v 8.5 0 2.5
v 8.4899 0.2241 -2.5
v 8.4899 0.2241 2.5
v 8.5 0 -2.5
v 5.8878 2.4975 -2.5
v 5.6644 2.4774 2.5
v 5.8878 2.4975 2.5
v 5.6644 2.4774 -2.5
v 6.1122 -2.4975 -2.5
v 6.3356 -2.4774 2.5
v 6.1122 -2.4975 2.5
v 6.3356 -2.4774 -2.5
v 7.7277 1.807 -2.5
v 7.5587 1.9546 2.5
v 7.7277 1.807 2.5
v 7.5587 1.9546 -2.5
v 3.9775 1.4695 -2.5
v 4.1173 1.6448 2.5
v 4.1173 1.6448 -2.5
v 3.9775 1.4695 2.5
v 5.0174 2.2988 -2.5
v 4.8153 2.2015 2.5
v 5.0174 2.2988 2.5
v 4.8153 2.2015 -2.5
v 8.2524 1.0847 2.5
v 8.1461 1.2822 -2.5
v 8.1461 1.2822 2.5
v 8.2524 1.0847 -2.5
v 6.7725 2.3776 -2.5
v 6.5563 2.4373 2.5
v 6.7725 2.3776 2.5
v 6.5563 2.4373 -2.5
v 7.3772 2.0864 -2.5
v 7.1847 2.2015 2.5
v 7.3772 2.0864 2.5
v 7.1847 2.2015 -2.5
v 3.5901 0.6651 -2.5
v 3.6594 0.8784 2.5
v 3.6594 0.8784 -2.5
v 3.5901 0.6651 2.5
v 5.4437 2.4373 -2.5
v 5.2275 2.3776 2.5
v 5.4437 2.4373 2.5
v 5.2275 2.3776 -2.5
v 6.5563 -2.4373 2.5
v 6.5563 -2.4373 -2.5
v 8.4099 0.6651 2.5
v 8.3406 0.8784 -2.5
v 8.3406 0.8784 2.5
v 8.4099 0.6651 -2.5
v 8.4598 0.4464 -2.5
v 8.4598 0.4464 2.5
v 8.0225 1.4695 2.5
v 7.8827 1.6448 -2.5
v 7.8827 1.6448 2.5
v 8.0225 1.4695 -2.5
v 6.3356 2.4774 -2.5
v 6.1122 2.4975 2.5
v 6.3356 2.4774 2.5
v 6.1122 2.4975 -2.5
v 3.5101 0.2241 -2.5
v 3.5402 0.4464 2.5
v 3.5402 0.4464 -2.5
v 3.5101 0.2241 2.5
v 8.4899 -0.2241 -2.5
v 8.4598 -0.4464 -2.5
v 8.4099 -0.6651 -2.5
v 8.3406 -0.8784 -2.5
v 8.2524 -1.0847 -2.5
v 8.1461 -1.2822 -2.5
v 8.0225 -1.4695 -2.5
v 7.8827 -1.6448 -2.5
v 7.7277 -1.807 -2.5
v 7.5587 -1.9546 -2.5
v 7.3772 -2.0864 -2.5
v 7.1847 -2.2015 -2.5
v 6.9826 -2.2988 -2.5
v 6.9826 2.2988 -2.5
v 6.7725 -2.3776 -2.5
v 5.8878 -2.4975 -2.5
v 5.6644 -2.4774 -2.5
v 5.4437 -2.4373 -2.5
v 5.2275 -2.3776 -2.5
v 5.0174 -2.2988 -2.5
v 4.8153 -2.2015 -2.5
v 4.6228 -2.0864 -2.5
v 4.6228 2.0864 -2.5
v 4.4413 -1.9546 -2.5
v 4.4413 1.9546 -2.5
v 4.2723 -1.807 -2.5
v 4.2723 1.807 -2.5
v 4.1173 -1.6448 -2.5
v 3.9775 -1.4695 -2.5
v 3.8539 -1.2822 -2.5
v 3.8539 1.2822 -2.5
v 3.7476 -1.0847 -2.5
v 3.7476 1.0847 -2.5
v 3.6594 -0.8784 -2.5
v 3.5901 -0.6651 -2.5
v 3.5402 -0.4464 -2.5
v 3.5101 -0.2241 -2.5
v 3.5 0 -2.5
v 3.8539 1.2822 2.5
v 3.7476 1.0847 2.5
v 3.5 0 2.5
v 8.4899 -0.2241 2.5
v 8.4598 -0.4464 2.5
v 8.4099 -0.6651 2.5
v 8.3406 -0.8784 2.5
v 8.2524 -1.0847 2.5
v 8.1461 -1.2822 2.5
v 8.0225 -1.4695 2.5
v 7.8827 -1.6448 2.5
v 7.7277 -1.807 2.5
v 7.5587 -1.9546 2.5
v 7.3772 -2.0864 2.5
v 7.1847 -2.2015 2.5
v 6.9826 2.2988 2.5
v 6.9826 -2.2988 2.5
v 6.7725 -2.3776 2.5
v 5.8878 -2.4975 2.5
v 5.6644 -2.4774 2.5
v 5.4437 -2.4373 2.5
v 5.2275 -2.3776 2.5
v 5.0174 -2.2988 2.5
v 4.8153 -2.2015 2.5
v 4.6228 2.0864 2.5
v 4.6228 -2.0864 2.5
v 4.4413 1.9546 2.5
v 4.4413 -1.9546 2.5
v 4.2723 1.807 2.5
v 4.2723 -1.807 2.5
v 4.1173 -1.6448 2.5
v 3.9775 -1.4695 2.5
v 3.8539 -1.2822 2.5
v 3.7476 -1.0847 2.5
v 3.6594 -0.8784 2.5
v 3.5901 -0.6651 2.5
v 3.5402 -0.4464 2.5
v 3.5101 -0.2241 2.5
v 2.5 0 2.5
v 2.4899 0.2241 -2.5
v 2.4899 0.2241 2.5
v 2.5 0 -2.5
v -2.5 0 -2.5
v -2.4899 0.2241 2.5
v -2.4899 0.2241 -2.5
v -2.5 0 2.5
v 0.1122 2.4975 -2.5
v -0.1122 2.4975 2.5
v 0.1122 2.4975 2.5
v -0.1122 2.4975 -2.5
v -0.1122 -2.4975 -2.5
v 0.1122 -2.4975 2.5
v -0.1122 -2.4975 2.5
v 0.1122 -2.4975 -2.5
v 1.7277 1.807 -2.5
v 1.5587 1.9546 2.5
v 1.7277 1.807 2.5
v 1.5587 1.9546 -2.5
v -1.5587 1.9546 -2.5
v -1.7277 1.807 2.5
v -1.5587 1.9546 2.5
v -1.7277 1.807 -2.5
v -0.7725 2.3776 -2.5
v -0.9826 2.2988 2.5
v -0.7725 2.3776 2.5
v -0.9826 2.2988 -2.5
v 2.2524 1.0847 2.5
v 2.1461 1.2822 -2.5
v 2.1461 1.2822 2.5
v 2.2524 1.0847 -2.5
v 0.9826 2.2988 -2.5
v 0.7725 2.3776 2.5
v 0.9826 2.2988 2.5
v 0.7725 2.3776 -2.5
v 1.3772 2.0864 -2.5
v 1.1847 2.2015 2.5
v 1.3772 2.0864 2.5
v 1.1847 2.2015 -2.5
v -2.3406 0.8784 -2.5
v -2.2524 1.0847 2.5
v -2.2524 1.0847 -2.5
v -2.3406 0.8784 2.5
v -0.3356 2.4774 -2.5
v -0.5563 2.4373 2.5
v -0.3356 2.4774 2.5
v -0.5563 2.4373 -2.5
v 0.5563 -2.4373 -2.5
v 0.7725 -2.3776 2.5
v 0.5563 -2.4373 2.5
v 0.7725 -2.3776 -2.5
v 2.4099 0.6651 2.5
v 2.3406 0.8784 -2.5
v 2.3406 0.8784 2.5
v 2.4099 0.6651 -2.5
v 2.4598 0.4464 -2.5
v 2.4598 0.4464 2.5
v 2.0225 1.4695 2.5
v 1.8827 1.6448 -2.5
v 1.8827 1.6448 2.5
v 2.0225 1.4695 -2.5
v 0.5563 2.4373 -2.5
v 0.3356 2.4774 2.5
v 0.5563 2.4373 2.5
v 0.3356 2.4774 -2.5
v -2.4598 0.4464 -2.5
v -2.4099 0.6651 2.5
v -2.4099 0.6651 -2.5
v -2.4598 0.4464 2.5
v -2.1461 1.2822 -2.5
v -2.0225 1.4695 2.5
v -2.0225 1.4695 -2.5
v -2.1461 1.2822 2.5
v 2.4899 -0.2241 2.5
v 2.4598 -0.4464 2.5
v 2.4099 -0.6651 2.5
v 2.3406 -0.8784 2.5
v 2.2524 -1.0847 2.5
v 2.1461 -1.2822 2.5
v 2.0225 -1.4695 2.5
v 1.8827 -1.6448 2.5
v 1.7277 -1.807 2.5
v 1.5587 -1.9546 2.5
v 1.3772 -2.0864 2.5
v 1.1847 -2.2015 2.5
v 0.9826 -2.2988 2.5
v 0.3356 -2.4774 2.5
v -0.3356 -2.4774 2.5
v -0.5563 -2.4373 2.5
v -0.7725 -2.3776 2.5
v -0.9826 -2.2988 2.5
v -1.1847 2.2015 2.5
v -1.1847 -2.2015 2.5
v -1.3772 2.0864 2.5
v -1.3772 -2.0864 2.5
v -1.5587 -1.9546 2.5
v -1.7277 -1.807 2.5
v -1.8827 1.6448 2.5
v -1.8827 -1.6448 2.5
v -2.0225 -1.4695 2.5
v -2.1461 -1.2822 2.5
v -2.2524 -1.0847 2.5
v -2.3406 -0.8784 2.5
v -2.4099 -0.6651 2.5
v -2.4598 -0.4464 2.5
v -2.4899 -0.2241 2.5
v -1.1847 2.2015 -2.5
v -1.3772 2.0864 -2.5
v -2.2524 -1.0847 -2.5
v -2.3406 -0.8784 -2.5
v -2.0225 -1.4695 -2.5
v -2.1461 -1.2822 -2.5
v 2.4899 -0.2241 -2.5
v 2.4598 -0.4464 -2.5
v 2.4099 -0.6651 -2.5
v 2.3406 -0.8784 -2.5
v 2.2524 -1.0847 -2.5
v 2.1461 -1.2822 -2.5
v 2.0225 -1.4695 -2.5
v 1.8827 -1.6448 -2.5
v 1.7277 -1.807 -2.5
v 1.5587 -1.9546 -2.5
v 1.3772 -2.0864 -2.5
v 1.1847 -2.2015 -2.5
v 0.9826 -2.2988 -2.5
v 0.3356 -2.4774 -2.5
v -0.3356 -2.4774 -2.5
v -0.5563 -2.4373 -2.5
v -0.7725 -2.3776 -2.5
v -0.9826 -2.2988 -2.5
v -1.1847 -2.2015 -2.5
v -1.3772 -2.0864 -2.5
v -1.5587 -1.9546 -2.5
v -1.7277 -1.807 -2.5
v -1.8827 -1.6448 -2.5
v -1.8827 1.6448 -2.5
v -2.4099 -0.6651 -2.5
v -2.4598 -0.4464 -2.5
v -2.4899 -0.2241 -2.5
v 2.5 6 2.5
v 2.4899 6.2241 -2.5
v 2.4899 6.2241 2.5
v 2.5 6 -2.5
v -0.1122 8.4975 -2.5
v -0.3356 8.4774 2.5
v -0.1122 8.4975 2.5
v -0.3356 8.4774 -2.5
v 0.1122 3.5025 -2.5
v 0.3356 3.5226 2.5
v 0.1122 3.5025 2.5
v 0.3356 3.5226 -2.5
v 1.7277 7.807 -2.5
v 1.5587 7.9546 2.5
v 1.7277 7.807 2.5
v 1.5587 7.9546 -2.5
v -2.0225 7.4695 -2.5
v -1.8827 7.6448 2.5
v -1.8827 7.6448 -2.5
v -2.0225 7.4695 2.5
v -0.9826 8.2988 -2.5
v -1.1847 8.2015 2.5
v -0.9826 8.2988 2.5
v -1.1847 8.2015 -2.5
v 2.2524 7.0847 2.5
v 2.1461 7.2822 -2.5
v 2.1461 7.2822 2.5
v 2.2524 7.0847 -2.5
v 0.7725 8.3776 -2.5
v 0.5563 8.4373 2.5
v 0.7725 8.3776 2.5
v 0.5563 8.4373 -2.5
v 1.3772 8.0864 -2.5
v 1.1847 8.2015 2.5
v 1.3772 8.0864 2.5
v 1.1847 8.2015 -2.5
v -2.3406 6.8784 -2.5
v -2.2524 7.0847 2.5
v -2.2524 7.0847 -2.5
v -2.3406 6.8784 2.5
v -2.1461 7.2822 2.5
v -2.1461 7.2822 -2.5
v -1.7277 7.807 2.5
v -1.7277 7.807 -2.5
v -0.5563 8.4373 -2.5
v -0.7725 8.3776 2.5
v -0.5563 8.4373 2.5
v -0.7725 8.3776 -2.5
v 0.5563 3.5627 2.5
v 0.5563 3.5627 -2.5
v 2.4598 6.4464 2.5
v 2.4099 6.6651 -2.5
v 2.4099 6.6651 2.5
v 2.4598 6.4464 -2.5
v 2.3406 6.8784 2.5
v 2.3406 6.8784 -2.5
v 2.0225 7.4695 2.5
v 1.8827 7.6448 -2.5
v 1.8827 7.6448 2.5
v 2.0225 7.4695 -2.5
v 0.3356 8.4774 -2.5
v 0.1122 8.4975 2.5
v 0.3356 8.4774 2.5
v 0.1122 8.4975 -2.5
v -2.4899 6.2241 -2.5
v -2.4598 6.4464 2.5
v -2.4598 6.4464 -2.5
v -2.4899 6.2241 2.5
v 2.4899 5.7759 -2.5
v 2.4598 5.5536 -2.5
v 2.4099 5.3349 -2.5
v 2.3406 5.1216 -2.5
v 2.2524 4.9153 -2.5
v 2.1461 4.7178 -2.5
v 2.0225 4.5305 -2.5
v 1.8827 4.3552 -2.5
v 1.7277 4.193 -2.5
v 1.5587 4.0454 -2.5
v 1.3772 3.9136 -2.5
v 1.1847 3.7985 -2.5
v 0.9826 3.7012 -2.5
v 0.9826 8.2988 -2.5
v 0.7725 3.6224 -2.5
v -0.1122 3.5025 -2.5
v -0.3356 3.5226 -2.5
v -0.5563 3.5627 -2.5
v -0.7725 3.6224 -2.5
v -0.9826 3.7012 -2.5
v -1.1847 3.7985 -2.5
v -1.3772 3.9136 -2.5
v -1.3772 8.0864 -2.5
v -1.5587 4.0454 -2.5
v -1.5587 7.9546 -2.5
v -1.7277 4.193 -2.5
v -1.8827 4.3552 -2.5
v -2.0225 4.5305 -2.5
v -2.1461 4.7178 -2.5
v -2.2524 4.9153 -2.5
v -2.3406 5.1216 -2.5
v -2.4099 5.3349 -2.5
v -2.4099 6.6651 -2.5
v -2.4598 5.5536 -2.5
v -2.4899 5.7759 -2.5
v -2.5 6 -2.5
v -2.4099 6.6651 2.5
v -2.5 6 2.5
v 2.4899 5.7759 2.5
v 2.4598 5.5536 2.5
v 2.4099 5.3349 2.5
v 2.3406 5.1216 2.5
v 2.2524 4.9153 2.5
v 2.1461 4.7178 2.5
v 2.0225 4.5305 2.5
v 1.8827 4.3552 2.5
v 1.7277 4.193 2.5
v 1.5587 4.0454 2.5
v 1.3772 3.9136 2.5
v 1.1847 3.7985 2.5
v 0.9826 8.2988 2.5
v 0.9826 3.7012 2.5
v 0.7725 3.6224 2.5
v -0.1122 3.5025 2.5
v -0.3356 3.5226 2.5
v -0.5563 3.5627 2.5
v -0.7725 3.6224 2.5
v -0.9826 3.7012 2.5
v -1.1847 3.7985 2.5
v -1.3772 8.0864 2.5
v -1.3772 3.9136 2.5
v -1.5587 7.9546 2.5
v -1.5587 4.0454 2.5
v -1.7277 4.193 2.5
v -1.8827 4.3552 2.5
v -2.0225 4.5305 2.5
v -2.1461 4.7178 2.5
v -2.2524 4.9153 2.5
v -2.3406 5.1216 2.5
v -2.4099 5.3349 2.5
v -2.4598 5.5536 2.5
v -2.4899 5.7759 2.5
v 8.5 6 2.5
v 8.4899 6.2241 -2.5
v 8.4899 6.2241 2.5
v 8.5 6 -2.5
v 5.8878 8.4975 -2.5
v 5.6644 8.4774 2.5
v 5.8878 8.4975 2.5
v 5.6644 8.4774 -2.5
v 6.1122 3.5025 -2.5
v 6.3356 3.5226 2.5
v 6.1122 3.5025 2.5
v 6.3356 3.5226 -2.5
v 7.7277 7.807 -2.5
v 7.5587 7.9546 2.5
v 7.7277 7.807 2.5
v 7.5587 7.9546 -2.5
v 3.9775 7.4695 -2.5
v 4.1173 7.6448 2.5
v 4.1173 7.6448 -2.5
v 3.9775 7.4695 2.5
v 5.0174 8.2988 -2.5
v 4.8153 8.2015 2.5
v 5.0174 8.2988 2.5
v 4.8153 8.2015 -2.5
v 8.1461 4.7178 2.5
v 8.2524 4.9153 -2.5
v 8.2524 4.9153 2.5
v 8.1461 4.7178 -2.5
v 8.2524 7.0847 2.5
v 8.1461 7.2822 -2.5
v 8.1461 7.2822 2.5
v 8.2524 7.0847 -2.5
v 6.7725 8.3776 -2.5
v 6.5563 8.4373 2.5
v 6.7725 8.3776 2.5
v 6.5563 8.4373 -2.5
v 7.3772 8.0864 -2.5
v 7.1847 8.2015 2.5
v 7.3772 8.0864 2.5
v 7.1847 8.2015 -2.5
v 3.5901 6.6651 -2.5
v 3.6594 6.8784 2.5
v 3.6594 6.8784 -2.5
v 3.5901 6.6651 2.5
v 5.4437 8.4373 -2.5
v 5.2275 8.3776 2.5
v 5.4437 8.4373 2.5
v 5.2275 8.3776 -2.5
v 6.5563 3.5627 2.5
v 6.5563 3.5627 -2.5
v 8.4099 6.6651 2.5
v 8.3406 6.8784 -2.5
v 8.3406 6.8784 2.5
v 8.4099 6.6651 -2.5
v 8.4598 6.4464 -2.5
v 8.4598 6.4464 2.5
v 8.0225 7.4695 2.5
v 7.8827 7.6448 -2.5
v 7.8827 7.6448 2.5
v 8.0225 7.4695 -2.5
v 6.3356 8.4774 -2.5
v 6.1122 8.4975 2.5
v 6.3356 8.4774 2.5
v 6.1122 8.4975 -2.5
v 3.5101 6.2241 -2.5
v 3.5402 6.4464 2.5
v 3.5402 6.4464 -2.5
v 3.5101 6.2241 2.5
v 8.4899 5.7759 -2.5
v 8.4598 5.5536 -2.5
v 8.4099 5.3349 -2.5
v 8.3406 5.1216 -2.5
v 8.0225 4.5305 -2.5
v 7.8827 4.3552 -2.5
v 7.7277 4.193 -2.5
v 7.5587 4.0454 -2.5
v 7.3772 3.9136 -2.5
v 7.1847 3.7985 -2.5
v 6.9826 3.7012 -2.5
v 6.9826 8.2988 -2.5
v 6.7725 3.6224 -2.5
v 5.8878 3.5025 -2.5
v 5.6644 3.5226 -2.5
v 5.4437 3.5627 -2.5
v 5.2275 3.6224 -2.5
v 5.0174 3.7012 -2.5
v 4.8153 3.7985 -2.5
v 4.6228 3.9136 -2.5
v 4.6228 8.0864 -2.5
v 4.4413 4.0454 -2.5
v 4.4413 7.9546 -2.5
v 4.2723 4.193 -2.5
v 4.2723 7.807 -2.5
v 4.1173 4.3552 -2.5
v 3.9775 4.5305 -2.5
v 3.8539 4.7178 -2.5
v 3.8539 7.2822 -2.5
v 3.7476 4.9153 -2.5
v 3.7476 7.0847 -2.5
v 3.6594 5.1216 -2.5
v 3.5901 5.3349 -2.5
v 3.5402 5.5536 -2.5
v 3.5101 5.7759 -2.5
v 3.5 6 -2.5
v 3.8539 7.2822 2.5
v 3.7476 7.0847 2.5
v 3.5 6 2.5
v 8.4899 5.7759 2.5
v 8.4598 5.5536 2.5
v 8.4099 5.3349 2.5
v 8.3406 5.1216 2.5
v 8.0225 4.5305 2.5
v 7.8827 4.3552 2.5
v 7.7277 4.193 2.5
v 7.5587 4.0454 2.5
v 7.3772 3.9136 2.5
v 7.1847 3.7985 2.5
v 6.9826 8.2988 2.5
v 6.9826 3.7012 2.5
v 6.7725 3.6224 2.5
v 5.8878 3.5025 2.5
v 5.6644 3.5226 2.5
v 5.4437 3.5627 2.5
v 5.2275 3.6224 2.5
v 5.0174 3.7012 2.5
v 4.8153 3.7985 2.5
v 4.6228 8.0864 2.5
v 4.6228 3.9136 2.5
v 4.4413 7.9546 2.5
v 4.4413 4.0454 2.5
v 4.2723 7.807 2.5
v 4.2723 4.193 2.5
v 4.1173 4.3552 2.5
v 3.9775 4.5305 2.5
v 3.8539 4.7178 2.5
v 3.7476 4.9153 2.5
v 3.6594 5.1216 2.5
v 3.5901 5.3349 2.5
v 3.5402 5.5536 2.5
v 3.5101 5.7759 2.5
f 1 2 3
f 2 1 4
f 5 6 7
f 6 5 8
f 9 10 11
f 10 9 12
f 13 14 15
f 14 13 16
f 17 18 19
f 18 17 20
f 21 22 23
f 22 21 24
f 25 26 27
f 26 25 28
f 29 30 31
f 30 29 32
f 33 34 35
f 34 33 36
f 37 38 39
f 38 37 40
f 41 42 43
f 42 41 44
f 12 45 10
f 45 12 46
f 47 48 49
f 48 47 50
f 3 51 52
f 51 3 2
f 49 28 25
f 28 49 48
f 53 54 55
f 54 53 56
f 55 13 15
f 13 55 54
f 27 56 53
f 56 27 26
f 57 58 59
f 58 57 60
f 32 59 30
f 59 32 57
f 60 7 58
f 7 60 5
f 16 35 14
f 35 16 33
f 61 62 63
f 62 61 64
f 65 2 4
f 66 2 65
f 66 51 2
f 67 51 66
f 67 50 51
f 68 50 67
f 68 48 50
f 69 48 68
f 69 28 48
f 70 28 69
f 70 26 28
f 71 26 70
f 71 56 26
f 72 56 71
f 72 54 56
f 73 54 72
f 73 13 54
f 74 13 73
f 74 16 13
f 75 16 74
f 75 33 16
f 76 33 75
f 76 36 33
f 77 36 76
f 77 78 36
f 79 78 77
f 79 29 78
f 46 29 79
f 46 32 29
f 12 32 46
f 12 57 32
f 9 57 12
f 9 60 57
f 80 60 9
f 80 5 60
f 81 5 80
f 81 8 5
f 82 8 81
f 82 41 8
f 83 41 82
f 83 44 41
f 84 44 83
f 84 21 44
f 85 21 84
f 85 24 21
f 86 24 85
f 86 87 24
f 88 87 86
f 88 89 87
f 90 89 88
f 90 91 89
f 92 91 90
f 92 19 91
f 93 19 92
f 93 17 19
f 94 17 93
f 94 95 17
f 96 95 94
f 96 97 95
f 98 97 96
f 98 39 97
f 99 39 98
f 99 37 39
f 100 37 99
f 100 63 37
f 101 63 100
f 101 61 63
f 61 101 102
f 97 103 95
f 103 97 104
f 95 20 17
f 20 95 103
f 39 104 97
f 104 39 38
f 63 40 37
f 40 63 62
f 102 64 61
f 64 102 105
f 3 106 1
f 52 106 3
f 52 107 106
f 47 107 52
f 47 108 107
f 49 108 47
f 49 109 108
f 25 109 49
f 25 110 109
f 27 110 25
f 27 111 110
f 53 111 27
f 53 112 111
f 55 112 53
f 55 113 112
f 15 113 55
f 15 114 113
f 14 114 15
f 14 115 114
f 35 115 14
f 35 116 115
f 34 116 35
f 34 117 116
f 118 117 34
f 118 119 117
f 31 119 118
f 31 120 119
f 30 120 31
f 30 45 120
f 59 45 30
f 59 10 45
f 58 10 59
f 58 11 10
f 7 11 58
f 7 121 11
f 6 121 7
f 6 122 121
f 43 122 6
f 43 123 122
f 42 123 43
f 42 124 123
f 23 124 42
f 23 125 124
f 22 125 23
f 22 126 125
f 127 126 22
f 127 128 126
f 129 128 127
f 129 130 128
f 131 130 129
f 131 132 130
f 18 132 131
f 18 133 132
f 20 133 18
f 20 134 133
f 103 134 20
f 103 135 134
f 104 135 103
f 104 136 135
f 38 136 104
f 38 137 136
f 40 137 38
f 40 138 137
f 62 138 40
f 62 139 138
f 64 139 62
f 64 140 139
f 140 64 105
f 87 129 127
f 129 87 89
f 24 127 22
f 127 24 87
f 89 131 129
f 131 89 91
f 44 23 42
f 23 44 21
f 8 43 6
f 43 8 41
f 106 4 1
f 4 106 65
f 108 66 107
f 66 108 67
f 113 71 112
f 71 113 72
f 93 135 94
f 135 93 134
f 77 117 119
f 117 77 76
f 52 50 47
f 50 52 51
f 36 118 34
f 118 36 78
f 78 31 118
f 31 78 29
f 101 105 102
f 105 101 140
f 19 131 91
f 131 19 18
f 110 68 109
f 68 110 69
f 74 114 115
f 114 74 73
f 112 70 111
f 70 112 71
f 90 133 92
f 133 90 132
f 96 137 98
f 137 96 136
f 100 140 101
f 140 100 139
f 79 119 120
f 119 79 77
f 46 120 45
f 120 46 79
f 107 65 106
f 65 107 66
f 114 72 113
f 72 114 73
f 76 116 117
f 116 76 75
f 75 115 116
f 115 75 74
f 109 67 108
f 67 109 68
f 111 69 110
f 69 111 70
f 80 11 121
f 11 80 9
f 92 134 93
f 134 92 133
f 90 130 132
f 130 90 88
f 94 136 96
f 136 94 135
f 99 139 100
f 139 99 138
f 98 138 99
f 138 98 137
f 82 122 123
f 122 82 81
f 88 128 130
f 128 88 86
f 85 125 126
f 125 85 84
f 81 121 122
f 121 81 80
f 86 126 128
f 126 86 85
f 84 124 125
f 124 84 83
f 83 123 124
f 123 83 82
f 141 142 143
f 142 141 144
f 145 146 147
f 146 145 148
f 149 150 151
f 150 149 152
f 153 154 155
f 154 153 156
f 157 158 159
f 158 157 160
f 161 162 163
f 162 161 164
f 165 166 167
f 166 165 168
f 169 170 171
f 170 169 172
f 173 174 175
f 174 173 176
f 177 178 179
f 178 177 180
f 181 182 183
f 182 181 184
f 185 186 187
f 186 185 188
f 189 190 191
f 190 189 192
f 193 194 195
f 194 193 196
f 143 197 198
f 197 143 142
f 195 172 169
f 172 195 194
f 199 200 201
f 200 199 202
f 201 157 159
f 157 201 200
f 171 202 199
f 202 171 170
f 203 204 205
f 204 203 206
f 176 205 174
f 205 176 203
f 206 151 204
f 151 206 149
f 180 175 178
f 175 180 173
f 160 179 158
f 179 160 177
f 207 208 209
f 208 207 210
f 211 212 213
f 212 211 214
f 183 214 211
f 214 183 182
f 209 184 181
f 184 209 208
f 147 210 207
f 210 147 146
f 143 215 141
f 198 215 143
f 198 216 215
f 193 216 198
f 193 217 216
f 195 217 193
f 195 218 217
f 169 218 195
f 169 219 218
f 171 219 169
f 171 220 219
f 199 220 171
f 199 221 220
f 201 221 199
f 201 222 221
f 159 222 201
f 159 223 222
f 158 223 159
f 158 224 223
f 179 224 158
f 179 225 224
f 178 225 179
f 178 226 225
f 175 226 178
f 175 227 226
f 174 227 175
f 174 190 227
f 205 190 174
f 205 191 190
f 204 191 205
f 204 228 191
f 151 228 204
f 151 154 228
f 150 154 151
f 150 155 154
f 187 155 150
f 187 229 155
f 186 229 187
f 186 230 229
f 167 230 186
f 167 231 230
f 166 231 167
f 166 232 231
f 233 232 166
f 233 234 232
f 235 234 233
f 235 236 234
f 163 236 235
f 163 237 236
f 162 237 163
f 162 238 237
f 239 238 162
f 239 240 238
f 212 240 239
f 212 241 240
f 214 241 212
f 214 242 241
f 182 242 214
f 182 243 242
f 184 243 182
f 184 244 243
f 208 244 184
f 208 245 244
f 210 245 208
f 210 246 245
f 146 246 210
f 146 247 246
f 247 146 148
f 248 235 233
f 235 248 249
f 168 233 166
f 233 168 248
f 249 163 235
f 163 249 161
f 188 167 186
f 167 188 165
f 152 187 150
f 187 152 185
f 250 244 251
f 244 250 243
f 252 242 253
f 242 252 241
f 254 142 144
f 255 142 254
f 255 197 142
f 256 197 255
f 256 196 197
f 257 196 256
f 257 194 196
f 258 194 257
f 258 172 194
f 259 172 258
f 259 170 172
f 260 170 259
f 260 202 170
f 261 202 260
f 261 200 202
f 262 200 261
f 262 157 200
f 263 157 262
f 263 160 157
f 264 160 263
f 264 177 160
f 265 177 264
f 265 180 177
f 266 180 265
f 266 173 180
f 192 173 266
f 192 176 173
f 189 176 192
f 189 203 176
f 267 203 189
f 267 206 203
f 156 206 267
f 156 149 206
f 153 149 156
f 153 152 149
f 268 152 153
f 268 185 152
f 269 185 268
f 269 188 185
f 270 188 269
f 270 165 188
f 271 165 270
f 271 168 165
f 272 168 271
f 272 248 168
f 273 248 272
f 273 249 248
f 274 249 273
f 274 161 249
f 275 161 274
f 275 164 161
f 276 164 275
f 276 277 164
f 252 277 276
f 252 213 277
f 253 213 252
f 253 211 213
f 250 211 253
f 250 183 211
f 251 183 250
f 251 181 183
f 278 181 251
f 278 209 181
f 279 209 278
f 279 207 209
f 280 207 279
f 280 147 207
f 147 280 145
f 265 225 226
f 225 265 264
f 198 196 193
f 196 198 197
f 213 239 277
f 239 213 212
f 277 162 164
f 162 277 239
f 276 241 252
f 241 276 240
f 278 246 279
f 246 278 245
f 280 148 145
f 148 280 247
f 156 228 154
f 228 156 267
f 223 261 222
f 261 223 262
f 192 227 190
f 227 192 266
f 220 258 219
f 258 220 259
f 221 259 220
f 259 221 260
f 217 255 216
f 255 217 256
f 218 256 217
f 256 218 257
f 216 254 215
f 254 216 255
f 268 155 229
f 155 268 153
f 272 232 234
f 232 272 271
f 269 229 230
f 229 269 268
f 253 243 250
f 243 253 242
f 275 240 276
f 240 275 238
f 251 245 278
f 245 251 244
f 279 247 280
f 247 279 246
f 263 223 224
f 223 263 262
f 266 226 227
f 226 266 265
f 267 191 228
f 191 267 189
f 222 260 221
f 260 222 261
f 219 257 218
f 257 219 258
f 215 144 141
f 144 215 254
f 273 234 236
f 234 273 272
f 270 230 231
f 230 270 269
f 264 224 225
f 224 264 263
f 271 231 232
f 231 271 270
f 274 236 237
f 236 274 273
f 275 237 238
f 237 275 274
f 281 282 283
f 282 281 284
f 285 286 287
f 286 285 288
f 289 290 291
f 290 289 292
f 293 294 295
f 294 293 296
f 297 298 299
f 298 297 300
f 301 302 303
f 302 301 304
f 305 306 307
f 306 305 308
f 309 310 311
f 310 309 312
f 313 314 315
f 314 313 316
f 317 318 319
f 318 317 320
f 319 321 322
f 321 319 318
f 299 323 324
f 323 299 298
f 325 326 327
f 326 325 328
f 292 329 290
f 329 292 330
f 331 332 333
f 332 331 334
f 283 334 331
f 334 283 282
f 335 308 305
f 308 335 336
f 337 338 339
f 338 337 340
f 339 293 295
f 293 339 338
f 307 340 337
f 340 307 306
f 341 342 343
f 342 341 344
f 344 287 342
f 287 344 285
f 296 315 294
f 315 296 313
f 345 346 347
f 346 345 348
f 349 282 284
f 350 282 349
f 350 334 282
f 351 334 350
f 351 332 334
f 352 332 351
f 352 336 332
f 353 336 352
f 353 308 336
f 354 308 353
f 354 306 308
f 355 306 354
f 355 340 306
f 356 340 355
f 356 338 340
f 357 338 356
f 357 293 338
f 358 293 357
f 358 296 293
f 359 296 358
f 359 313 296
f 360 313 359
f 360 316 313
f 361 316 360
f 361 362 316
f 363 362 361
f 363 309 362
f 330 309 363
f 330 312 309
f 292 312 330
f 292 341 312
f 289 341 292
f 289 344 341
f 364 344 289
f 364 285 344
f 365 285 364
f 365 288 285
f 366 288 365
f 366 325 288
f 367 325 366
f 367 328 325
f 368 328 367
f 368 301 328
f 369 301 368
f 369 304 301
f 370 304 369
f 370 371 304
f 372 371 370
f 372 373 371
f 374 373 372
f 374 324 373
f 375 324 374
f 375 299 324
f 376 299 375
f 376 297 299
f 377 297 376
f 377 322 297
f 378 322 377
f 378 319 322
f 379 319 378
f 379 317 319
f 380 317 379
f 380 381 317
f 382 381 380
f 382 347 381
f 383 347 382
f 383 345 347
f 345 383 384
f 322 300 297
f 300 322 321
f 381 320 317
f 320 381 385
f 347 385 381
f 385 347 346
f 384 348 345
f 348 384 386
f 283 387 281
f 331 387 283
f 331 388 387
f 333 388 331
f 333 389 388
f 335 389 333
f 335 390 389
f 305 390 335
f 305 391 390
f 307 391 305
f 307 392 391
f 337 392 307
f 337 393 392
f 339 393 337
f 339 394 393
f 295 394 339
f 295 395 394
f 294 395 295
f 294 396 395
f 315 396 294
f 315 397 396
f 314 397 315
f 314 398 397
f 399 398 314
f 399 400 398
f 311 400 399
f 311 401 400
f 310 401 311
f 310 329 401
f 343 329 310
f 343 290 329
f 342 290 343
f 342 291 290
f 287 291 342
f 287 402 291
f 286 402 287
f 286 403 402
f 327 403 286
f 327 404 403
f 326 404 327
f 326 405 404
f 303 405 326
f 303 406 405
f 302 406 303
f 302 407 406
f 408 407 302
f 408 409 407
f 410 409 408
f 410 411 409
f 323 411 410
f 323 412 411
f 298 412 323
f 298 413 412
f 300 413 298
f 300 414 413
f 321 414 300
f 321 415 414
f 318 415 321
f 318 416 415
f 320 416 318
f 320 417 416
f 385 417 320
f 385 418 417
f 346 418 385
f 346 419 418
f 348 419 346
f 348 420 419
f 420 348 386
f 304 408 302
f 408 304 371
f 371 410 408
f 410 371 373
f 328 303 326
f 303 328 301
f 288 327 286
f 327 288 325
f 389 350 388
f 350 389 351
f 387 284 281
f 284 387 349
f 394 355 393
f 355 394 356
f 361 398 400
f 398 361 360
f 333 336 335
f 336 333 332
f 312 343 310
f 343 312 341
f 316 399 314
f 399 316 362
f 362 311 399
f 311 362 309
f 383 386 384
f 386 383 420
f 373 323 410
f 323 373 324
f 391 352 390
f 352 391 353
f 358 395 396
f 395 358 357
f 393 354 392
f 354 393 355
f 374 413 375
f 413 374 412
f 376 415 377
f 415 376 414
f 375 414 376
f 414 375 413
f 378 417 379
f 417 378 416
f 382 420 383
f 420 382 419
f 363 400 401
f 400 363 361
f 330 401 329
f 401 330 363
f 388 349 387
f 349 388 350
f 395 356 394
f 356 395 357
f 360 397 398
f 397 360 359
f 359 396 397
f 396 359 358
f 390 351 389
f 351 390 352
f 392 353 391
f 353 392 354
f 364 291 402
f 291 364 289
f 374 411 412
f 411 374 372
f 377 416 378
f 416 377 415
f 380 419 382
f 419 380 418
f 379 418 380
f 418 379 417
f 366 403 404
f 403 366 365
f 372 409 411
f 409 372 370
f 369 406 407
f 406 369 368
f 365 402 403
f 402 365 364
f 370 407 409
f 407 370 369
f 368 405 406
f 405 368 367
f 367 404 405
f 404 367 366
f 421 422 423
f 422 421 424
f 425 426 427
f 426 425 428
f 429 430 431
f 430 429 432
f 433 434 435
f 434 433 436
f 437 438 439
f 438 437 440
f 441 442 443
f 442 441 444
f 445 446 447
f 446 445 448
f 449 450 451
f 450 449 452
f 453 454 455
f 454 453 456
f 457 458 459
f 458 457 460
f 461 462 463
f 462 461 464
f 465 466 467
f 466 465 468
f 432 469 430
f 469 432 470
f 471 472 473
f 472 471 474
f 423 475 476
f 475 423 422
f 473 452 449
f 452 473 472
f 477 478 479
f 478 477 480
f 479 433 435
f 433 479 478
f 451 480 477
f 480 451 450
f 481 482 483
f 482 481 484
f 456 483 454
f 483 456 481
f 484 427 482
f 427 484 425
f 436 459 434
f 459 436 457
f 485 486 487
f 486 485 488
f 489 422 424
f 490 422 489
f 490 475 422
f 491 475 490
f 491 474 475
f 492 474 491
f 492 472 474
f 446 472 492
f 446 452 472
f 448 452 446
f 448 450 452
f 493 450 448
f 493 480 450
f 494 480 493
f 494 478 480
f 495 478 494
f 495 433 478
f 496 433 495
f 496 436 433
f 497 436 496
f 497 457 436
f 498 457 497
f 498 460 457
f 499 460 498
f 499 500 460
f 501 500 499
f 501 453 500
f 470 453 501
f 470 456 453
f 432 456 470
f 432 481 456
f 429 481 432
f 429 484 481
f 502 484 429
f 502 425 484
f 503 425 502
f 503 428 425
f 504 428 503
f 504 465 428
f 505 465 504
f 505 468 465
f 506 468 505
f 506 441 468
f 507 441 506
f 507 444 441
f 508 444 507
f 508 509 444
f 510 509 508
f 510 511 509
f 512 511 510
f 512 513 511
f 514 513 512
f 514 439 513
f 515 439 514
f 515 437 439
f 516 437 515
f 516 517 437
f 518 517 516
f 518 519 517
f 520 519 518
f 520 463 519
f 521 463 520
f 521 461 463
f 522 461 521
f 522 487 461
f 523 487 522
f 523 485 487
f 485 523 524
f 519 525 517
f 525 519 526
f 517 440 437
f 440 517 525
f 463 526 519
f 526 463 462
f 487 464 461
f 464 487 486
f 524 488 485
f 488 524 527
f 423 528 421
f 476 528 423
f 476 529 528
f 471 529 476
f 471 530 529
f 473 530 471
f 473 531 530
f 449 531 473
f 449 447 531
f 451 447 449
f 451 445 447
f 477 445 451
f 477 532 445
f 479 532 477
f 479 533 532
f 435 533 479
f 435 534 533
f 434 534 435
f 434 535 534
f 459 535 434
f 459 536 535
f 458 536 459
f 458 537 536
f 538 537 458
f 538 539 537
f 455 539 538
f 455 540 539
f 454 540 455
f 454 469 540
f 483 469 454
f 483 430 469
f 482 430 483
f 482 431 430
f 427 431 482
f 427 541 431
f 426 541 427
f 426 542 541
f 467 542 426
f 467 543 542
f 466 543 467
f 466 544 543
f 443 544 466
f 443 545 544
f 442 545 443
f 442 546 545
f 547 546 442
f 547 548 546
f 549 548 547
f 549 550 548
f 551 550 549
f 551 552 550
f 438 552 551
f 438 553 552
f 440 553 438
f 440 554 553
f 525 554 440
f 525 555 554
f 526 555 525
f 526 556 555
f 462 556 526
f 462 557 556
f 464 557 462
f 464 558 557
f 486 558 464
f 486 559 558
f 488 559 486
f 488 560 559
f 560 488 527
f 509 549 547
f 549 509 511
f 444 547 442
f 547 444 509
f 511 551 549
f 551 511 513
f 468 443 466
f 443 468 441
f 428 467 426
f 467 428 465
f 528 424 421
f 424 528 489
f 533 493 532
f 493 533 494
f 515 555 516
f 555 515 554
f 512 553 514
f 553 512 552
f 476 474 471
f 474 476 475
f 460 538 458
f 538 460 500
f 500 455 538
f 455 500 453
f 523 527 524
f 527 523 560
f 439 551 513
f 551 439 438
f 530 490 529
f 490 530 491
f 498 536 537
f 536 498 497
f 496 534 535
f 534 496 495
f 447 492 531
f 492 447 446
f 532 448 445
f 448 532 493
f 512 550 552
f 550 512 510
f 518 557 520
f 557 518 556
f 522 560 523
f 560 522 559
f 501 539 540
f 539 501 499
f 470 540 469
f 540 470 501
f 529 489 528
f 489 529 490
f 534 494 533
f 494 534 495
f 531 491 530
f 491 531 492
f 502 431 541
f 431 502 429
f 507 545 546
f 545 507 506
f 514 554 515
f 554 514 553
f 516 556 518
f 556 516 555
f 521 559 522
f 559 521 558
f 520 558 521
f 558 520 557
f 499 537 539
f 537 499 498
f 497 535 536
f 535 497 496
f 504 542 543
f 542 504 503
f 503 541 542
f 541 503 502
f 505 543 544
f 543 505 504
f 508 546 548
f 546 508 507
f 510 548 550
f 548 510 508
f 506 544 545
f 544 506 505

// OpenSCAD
$fn=70;


color( "SlateGray", 1.0 )


translate([6,0,0])
color( "LightSlateGray", 1.0 )
cylinder(h = 5, r1 = 2.5, r2 = 2.5, center = true);

translate([0,0,0])
color( "LightSlateGray", 1.0 )
cylinder(h = 5, r1 = 2.5, r2 = 2.5, center = true);

translate([0,6,0])
color( "LightSlateGray", 1.0 )
cylinder(h = 5, r1 = 2.5, r2 = 2.5, center = true);

translate([6,6,0])
color( "LightSlateGray", 1.0 )
cylinder(h = 5, r1 = 2.5, r2 = 2.5, center = true);
